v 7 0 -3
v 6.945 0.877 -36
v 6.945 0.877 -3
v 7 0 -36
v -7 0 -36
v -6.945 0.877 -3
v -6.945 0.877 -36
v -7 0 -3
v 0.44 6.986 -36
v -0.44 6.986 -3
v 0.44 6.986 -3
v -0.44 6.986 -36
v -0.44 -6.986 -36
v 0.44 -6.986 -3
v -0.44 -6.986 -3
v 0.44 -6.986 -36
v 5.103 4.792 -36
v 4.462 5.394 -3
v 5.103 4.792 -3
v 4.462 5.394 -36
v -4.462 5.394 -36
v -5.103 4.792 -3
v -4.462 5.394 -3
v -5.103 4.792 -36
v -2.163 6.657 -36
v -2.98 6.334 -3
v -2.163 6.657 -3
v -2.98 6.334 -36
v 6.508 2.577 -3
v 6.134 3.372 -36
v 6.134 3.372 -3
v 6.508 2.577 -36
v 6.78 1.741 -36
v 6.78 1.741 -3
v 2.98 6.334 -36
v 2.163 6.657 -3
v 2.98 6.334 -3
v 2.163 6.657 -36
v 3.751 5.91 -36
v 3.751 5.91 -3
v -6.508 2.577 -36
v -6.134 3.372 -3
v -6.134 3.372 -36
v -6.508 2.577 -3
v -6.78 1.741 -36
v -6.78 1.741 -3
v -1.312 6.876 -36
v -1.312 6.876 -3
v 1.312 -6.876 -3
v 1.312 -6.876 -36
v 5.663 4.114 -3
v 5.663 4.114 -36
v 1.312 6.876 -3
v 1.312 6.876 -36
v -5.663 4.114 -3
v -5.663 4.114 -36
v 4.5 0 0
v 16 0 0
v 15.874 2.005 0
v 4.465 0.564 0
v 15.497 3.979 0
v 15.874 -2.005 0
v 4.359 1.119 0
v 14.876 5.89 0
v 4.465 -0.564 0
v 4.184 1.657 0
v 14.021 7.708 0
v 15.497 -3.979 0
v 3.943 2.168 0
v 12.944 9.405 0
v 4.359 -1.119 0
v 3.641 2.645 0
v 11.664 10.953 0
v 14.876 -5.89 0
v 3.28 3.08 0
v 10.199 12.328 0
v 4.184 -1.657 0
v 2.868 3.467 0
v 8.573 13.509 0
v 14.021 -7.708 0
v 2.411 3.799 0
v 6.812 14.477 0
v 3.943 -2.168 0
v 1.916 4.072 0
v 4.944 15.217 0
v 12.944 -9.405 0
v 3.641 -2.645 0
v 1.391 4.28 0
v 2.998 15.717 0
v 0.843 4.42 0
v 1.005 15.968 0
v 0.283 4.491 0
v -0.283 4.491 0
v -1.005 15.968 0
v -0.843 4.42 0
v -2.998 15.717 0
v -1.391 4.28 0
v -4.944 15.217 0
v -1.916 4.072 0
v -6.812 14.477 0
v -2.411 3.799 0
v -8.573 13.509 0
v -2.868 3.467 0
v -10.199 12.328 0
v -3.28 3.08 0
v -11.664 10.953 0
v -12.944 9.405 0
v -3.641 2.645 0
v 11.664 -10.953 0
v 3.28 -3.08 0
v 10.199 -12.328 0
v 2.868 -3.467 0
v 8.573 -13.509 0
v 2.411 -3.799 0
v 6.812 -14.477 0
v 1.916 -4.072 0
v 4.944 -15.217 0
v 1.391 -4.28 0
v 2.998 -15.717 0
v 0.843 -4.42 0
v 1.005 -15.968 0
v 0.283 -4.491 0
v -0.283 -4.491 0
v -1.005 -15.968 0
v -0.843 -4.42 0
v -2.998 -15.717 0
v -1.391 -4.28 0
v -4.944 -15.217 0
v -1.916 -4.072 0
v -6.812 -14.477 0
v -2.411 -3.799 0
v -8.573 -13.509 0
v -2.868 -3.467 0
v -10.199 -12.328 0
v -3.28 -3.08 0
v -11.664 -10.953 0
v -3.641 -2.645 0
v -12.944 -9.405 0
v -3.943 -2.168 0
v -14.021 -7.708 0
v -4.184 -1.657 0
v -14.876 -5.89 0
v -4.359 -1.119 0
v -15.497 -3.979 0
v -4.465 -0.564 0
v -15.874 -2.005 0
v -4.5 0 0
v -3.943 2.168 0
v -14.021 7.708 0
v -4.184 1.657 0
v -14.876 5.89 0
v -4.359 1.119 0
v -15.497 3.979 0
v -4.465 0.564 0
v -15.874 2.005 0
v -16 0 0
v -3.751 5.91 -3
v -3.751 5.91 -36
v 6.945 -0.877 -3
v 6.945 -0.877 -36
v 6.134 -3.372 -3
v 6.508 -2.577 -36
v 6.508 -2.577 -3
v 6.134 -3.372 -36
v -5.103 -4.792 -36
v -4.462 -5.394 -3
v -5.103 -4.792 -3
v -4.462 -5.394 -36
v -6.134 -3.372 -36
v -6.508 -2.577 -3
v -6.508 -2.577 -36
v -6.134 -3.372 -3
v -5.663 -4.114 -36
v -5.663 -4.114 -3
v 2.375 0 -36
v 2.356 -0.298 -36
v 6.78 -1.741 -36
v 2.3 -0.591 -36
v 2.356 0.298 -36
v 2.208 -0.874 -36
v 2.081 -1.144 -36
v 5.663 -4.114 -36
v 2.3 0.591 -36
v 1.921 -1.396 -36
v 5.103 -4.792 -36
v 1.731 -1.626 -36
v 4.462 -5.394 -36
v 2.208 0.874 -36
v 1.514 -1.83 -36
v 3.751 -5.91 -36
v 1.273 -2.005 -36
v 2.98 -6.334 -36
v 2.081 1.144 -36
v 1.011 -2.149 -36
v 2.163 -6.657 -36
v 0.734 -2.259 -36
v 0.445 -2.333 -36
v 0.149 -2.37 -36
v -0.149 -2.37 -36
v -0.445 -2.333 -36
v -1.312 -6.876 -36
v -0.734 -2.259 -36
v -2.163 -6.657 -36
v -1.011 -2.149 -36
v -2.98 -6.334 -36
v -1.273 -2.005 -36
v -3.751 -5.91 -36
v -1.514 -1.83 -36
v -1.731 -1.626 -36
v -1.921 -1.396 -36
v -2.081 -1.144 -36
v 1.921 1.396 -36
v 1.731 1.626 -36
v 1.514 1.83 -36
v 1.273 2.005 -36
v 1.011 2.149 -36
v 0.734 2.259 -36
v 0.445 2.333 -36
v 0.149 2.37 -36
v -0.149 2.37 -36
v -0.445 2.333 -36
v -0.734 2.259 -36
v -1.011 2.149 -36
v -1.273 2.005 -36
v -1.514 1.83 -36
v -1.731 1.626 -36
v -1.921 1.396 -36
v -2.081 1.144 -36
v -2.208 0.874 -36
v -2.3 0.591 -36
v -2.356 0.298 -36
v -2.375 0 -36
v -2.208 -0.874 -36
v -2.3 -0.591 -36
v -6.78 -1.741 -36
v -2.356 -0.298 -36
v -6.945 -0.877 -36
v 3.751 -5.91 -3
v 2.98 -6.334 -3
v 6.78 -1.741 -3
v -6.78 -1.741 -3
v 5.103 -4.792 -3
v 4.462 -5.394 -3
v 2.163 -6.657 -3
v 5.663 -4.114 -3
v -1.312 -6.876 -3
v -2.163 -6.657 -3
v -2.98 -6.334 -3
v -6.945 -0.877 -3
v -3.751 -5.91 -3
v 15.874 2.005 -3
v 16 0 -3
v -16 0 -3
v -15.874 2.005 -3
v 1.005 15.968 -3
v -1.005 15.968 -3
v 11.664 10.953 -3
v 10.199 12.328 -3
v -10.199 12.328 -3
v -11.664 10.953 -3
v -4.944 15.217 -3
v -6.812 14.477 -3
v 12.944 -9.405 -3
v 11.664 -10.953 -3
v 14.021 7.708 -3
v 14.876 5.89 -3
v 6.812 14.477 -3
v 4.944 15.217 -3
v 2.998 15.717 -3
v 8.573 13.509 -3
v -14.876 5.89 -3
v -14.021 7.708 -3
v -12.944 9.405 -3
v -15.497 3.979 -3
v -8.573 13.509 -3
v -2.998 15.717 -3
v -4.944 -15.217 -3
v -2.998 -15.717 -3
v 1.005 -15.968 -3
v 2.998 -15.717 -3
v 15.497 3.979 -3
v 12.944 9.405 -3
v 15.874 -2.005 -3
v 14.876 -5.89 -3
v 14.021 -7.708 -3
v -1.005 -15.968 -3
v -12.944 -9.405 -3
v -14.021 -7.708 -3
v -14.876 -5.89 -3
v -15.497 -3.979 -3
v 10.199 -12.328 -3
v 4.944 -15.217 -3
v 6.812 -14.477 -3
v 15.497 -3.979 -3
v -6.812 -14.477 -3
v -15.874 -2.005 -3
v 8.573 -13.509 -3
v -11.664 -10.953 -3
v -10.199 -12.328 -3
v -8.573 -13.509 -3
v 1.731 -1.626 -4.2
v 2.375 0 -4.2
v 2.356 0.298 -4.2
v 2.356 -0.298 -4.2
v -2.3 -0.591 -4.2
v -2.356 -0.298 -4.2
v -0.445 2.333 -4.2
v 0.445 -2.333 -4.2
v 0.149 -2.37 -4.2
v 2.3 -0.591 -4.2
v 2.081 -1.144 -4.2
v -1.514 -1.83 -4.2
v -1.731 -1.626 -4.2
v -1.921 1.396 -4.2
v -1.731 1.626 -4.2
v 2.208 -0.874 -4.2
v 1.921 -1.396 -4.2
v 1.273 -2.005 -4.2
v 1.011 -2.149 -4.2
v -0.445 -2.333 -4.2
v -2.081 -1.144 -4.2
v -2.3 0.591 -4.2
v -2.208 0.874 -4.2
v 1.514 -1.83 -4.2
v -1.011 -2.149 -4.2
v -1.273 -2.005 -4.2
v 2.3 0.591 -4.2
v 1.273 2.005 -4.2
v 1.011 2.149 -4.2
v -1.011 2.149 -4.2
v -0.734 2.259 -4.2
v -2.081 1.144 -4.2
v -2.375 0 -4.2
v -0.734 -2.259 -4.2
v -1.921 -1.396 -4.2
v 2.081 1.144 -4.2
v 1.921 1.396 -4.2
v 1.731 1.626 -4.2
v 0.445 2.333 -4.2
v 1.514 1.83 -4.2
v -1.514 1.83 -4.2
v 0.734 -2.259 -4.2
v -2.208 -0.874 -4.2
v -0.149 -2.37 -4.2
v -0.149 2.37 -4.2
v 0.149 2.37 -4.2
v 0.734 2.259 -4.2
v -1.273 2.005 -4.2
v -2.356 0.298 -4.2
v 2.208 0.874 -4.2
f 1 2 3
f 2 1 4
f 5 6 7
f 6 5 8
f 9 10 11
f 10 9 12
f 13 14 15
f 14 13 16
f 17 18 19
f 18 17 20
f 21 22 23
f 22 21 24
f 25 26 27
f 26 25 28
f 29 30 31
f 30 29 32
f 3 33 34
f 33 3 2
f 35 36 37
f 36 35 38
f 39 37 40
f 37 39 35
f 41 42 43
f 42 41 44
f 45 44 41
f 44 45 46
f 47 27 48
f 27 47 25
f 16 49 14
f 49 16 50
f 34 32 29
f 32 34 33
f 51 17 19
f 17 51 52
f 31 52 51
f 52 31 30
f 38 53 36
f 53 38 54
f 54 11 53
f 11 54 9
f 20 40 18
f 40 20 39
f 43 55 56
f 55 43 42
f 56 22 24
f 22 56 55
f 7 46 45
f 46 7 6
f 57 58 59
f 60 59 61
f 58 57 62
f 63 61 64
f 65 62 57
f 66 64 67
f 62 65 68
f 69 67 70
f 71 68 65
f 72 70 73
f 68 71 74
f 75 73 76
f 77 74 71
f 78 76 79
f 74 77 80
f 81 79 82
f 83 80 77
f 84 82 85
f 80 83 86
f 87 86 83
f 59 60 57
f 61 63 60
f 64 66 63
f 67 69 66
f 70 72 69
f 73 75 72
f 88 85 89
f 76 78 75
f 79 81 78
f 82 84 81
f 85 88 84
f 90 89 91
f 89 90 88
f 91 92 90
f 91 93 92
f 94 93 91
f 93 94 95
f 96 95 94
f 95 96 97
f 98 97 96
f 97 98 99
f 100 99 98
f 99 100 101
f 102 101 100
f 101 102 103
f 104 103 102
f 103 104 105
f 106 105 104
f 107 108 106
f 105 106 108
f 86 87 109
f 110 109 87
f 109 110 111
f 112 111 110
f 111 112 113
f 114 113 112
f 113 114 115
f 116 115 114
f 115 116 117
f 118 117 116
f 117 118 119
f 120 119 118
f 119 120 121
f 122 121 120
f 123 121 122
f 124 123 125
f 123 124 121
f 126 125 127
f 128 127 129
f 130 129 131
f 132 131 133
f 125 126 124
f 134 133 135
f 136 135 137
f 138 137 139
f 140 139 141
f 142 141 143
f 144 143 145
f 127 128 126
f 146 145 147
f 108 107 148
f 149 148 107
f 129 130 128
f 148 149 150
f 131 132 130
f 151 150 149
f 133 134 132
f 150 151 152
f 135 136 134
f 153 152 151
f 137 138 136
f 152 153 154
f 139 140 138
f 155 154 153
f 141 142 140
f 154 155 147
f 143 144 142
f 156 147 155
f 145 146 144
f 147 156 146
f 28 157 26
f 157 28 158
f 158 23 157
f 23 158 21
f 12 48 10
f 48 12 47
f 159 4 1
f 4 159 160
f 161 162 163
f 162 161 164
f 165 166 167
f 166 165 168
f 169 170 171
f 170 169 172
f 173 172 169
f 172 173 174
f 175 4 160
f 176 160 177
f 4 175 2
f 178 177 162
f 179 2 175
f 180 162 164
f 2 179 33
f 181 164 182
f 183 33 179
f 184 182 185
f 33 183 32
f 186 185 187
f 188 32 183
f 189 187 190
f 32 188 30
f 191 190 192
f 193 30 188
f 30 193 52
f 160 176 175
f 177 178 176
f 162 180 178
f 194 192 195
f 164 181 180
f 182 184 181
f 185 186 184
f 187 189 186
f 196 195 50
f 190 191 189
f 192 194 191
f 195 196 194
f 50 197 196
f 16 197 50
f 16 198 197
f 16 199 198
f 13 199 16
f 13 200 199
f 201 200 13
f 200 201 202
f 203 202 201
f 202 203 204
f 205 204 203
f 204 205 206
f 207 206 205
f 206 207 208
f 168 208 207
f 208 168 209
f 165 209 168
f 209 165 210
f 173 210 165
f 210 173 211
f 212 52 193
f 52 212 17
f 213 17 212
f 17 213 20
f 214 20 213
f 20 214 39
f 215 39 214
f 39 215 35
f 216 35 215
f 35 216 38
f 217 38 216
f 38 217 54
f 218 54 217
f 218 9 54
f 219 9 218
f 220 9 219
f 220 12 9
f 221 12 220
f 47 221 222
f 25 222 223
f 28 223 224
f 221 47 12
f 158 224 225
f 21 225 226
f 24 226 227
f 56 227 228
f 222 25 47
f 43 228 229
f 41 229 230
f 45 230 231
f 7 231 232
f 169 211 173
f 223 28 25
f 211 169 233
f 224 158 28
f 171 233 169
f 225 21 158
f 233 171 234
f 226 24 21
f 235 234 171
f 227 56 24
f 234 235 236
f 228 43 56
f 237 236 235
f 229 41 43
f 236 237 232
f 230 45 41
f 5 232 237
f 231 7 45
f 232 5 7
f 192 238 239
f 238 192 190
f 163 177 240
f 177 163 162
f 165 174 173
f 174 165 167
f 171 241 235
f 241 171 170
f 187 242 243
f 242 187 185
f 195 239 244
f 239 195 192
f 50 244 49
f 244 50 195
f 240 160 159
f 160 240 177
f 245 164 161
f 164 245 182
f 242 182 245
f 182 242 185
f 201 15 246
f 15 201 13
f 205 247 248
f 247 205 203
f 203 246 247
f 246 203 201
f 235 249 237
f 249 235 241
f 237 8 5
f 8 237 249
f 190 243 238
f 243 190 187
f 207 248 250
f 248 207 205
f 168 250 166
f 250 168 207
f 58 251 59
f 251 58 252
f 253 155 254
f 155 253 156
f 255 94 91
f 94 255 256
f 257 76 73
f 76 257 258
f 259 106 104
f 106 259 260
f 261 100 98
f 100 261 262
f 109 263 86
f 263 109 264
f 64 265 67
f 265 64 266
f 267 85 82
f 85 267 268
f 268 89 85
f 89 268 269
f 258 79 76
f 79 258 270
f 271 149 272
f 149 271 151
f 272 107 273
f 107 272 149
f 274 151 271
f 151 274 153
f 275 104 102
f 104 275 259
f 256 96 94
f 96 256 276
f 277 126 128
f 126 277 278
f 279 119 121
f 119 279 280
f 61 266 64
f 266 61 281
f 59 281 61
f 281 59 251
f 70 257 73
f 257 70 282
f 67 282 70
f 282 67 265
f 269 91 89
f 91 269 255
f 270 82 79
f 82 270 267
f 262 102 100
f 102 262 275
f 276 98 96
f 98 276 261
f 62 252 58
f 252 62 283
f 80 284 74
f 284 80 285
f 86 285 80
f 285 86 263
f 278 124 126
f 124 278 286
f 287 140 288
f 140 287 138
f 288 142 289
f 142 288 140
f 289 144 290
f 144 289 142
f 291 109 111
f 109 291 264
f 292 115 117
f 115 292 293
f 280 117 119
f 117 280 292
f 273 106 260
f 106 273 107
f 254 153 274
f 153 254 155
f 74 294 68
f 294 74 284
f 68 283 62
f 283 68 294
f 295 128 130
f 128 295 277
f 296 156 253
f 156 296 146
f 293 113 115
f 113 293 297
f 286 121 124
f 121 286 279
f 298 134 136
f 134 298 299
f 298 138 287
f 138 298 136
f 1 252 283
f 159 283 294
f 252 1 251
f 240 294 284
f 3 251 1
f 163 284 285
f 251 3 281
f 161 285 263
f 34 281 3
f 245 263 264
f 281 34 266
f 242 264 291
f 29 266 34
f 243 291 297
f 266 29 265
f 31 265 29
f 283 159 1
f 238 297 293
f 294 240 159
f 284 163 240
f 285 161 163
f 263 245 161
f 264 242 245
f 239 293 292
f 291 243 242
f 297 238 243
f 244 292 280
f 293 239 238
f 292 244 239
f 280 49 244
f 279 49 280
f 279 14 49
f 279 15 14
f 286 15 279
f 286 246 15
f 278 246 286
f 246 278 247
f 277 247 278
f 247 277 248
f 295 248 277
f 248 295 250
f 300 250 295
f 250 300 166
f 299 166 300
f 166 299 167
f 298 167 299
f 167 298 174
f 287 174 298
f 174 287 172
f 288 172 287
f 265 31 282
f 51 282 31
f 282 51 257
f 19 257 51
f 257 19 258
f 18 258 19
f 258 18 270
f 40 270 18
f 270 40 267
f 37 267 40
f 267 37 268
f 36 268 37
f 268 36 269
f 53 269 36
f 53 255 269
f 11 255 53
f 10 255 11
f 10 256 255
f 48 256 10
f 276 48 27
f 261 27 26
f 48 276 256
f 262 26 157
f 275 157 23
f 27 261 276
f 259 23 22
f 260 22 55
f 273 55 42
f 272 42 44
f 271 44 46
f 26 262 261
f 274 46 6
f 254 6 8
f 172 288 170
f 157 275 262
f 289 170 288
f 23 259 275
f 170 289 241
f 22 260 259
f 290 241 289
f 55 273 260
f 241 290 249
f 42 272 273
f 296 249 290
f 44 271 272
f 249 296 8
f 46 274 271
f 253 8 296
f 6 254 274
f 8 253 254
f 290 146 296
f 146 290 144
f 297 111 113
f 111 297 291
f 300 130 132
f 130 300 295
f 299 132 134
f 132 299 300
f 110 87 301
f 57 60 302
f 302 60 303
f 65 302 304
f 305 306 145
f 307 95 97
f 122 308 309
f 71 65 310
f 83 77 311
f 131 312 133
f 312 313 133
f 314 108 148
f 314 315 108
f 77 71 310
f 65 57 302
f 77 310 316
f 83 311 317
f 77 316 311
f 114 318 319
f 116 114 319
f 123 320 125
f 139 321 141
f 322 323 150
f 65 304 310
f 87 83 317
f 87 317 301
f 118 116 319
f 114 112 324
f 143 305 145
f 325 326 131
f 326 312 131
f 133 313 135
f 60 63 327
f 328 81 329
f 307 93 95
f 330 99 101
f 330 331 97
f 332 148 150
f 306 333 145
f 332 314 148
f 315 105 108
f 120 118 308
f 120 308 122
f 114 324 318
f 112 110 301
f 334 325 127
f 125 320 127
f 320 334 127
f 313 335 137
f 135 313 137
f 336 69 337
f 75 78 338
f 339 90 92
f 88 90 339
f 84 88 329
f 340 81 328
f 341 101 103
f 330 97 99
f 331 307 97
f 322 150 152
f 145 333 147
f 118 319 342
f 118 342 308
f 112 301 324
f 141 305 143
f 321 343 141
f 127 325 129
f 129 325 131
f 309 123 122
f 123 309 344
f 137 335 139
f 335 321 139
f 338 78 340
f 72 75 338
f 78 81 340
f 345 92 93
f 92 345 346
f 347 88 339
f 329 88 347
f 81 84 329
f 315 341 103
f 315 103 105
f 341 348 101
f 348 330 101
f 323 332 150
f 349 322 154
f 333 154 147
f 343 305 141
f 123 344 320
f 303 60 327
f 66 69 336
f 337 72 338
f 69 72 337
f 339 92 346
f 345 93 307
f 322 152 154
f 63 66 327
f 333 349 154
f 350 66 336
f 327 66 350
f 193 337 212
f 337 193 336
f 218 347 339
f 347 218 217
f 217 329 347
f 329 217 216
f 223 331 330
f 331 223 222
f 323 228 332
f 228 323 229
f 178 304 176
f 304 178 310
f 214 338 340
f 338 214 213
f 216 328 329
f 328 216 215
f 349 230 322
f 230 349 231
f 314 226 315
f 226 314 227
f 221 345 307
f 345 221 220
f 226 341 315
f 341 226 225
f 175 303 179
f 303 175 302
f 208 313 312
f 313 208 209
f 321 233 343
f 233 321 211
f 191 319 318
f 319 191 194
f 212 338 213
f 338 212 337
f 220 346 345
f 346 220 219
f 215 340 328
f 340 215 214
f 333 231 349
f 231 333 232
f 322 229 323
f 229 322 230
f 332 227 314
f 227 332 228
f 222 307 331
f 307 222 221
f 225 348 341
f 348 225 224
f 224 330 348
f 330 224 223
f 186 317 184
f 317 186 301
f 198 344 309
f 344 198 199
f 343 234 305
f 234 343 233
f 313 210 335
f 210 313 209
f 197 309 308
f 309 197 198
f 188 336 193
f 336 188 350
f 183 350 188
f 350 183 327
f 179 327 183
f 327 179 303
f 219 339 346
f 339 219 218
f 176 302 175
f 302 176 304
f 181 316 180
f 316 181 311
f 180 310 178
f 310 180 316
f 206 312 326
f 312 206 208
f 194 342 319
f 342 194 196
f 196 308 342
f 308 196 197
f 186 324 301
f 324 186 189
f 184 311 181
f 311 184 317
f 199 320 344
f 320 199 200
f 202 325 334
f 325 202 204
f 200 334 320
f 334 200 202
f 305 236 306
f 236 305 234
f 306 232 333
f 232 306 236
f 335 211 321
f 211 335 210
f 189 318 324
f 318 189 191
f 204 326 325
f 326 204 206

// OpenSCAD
$fn = 50;


difference() {
	union() {
		translate(v = [0, 0, -36.0000000000]) {
			cylinder(h = 36, r = 7.0000000000);
		}
		translate(v = [0, 0, -3.0000000000]) {
			cylinder(h = 3, r = 16.0000000000);
		}
	}
	union() {
		translate(v = [0, 0, 0]) {
			rotate(a = [0, 0, 0]) {
				difference() {
					union() {
						#translate(v = [0, 0, -36.0000000000]) {
							cylinder(h = 36, r = 2.2500000000);
						}
						#translate(v = [0, 0, -4.2000000000]) {
							cylinder(h = 4.2000000000, r1 = 2.3750000000, r2 = 4.5000000000);
						}
						#translate(v = [0, 0, -36.0000000000]) {
							cylinder(h = 36, r = 2.3750000000);
						}
						#translate(v = [0, 0, -36.0000000000]) {
							cylinder(h = 36, r = 2.2500000000);
						}
					}
					union();
				}
			}
		}
	}
}
